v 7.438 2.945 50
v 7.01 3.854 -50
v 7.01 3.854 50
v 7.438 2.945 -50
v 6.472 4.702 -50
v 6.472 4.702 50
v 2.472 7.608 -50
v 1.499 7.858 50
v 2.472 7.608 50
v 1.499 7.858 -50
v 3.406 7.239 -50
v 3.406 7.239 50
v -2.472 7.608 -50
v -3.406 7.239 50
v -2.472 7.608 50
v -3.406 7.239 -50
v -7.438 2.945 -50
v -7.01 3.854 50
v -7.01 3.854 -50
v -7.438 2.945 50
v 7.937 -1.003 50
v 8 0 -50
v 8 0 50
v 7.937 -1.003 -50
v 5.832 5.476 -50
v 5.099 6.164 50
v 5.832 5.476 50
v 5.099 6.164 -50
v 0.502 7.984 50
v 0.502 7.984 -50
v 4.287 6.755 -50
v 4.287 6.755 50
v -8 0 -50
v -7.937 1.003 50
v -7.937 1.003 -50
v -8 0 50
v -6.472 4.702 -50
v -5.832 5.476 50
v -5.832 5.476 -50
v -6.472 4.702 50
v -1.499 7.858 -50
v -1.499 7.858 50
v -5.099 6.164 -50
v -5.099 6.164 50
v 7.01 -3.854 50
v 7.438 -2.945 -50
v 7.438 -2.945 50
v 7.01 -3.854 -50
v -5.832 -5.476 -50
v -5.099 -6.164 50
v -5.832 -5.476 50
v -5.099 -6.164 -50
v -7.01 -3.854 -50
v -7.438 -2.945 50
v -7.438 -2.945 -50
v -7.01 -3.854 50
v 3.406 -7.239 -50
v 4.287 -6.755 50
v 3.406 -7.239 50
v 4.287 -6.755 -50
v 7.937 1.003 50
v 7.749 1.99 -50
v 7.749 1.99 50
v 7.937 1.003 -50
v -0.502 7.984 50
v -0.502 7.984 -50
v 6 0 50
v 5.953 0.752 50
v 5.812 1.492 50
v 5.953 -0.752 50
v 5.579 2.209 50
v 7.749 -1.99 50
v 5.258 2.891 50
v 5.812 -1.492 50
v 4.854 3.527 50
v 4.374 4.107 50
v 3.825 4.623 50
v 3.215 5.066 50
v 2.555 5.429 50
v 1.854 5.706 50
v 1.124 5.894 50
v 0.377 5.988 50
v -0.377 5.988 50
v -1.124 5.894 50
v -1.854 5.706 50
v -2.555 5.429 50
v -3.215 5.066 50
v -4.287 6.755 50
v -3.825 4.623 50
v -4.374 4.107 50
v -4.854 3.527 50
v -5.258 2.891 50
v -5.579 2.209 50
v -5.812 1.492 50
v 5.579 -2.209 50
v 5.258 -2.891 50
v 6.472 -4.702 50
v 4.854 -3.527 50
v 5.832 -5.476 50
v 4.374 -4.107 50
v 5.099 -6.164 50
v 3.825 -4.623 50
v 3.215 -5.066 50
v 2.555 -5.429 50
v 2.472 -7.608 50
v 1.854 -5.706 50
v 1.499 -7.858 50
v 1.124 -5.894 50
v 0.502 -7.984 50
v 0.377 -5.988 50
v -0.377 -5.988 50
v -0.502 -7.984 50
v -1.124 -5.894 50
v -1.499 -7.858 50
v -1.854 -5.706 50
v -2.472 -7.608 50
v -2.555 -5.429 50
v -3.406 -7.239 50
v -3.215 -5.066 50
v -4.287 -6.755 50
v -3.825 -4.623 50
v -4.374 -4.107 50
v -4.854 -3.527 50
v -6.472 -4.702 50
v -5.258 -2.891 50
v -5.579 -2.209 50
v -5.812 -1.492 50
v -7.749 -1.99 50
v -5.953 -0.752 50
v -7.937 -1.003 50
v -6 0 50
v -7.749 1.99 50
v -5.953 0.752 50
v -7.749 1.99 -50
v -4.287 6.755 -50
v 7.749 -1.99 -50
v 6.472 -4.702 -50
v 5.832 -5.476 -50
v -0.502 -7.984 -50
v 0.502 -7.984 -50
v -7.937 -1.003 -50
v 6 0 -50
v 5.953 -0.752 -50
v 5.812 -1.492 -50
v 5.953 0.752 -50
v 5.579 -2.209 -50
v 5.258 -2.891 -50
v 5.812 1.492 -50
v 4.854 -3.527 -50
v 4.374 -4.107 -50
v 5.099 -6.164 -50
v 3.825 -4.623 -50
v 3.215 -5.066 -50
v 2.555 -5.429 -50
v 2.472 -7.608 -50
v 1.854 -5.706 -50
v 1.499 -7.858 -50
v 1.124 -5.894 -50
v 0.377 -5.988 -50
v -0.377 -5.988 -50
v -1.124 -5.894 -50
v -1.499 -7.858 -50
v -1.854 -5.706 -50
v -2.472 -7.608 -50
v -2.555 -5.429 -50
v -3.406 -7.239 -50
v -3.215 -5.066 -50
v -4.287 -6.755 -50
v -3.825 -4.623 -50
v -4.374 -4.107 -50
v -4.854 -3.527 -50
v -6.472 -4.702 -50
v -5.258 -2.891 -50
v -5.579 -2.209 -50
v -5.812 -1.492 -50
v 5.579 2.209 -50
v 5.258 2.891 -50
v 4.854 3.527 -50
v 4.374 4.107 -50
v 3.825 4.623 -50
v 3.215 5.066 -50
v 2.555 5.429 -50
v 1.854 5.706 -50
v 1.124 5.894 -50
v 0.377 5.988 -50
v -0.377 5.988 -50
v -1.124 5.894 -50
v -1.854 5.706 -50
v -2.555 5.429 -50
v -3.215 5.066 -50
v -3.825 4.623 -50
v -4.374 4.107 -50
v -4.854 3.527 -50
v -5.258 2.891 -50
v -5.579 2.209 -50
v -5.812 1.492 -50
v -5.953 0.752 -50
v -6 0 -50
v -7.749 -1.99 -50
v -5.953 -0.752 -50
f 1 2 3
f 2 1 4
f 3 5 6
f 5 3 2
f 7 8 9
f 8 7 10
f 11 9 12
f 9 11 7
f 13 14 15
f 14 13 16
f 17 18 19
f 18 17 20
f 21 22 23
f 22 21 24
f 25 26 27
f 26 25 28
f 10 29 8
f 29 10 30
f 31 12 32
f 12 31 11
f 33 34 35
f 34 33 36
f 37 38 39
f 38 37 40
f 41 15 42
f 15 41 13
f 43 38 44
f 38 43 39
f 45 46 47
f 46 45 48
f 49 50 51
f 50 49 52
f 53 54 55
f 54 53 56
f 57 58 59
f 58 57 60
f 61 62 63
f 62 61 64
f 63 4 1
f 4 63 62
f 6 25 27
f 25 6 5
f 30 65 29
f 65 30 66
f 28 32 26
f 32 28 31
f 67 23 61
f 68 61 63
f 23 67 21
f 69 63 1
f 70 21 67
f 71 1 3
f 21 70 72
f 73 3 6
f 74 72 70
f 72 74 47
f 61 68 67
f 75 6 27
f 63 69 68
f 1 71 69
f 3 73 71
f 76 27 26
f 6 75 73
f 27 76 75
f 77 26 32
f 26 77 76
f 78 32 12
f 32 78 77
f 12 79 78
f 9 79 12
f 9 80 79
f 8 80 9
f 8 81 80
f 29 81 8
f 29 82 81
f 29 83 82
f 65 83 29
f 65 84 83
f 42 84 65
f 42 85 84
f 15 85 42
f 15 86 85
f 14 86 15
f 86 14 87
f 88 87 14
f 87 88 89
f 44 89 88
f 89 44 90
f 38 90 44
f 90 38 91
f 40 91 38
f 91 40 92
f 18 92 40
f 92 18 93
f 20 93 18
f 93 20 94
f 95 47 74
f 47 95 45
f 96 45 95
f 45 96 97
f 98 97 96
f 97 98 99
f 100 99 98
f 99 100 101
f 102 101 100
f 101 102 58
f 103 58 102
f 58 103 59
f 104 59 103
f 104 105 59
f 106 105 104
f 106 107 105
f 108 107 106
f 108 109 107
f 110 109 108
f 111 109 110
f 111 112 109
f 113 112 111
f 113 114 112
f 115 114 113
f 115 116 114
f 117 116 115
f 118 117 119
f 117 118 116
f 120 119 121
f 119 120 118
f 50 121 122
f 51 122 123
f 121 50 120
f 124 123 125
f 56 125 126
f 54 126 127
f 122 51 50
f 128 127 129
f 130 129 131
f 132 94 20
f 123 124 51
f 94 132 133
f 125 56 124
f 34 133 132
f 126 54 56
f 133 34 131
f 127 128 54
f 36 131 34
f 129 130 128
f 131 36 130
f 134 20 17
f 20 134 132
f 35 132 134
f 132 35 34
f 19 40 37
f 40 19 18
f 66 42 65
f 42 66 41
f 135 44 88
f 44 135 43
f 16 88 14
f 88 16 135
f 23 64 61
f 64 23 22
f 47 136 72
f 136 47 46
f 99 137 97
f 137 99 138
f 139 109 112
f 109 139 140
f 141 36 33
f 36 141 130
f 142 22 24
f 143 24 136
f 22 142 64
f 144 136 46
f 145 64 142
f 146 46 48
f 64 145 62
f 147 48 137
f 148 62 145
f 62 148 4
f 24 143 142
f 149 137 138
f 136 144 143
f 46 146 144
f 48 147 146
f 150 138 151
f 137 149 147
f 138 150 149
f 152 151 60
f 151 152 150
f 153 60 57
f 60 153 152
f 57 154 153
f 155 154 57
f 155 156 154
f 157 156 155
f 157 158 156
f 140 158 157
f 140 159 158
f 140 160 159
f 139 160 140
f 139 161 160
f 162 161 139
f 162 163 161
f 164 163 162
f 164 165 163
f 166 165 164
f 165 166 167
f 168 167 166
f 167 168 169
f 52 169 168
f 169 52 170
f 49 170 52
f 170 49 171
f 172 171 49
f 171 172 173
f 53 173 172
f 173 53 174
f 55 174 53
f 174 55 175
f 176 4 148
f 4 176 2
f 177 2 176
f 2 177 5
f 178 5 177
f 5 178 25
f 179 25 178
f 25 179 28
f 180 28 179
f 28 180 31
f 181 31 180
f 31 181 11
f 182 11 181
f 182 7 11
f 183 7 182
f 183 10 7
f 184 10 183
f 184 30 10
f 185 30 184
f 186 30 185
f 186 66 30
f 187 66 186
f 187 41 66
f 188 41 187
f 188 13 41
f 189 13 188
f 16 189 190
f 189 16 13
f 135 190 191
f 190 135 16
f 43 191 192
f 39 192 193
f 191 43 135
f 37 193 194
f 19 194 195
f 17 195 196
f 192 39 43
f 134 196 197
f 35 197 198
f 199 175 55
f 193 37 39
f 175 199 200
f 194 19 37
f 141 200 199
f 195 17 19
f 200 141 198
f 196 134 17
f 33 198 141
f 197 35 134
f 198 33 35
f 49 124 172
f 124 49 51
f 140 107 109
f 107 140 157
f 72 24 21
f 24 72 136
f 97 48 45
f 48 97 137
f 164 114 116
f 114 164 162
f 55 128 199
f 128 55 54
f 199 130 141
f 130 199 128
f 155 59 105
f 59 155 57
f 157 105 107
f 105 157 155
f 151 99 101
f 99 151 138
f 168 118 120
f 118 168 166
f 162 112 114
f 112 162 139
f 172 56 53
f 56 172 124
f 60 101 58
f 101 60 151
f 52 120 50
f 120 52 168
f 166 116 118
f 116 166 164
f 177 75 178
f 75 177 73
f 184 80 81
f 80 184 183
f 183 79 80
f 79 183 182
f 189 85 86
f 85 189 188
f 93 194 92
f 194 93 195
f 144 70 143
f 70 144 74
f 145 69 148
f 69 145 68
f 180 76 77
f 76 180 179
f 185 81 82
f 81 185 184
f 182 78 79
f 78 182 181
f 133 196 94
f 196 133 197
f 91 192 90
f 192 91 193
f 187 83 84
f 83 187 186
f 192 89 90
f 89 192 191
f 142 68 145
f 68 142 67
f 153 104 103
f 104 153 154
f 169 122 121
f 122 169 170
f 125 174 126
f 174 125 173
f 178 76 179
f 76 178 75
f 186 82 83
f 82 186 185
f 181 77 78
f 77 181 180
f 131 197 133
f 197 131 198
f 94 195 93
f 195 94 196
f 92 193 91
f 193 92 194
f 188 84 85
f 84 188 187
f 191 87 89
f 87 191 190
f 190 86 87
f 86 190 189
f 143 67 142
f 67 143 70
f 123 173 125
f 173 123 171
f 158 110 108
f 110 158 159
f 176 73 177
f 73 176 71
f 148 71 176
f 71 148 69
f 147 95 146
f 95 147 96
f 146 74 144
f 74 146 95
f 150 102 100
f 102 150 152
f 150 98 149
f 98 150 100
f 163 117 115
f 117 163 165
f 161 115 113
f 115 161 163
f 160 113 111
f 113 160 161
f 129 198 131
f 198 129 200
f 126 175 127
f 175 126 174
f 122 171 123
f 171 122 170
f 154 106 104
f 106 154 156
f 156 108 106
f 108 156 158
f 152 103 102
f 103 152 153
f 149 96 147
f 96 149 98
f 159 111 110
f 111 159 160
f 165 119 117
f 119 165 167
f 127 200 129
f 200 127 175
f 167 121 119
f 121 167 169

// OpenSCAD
$fn = 50;


difference() {
	union() {
		translate(v = [0, 0, -50.0000000000]) {
			cylinder(h = 100, r = 8.0000000000);
		}
	}
	union() {
		translate(v = [0, 0, -100.0000000000]) {
			cylinder(h = 200, r = 6);
		}
	}
}
